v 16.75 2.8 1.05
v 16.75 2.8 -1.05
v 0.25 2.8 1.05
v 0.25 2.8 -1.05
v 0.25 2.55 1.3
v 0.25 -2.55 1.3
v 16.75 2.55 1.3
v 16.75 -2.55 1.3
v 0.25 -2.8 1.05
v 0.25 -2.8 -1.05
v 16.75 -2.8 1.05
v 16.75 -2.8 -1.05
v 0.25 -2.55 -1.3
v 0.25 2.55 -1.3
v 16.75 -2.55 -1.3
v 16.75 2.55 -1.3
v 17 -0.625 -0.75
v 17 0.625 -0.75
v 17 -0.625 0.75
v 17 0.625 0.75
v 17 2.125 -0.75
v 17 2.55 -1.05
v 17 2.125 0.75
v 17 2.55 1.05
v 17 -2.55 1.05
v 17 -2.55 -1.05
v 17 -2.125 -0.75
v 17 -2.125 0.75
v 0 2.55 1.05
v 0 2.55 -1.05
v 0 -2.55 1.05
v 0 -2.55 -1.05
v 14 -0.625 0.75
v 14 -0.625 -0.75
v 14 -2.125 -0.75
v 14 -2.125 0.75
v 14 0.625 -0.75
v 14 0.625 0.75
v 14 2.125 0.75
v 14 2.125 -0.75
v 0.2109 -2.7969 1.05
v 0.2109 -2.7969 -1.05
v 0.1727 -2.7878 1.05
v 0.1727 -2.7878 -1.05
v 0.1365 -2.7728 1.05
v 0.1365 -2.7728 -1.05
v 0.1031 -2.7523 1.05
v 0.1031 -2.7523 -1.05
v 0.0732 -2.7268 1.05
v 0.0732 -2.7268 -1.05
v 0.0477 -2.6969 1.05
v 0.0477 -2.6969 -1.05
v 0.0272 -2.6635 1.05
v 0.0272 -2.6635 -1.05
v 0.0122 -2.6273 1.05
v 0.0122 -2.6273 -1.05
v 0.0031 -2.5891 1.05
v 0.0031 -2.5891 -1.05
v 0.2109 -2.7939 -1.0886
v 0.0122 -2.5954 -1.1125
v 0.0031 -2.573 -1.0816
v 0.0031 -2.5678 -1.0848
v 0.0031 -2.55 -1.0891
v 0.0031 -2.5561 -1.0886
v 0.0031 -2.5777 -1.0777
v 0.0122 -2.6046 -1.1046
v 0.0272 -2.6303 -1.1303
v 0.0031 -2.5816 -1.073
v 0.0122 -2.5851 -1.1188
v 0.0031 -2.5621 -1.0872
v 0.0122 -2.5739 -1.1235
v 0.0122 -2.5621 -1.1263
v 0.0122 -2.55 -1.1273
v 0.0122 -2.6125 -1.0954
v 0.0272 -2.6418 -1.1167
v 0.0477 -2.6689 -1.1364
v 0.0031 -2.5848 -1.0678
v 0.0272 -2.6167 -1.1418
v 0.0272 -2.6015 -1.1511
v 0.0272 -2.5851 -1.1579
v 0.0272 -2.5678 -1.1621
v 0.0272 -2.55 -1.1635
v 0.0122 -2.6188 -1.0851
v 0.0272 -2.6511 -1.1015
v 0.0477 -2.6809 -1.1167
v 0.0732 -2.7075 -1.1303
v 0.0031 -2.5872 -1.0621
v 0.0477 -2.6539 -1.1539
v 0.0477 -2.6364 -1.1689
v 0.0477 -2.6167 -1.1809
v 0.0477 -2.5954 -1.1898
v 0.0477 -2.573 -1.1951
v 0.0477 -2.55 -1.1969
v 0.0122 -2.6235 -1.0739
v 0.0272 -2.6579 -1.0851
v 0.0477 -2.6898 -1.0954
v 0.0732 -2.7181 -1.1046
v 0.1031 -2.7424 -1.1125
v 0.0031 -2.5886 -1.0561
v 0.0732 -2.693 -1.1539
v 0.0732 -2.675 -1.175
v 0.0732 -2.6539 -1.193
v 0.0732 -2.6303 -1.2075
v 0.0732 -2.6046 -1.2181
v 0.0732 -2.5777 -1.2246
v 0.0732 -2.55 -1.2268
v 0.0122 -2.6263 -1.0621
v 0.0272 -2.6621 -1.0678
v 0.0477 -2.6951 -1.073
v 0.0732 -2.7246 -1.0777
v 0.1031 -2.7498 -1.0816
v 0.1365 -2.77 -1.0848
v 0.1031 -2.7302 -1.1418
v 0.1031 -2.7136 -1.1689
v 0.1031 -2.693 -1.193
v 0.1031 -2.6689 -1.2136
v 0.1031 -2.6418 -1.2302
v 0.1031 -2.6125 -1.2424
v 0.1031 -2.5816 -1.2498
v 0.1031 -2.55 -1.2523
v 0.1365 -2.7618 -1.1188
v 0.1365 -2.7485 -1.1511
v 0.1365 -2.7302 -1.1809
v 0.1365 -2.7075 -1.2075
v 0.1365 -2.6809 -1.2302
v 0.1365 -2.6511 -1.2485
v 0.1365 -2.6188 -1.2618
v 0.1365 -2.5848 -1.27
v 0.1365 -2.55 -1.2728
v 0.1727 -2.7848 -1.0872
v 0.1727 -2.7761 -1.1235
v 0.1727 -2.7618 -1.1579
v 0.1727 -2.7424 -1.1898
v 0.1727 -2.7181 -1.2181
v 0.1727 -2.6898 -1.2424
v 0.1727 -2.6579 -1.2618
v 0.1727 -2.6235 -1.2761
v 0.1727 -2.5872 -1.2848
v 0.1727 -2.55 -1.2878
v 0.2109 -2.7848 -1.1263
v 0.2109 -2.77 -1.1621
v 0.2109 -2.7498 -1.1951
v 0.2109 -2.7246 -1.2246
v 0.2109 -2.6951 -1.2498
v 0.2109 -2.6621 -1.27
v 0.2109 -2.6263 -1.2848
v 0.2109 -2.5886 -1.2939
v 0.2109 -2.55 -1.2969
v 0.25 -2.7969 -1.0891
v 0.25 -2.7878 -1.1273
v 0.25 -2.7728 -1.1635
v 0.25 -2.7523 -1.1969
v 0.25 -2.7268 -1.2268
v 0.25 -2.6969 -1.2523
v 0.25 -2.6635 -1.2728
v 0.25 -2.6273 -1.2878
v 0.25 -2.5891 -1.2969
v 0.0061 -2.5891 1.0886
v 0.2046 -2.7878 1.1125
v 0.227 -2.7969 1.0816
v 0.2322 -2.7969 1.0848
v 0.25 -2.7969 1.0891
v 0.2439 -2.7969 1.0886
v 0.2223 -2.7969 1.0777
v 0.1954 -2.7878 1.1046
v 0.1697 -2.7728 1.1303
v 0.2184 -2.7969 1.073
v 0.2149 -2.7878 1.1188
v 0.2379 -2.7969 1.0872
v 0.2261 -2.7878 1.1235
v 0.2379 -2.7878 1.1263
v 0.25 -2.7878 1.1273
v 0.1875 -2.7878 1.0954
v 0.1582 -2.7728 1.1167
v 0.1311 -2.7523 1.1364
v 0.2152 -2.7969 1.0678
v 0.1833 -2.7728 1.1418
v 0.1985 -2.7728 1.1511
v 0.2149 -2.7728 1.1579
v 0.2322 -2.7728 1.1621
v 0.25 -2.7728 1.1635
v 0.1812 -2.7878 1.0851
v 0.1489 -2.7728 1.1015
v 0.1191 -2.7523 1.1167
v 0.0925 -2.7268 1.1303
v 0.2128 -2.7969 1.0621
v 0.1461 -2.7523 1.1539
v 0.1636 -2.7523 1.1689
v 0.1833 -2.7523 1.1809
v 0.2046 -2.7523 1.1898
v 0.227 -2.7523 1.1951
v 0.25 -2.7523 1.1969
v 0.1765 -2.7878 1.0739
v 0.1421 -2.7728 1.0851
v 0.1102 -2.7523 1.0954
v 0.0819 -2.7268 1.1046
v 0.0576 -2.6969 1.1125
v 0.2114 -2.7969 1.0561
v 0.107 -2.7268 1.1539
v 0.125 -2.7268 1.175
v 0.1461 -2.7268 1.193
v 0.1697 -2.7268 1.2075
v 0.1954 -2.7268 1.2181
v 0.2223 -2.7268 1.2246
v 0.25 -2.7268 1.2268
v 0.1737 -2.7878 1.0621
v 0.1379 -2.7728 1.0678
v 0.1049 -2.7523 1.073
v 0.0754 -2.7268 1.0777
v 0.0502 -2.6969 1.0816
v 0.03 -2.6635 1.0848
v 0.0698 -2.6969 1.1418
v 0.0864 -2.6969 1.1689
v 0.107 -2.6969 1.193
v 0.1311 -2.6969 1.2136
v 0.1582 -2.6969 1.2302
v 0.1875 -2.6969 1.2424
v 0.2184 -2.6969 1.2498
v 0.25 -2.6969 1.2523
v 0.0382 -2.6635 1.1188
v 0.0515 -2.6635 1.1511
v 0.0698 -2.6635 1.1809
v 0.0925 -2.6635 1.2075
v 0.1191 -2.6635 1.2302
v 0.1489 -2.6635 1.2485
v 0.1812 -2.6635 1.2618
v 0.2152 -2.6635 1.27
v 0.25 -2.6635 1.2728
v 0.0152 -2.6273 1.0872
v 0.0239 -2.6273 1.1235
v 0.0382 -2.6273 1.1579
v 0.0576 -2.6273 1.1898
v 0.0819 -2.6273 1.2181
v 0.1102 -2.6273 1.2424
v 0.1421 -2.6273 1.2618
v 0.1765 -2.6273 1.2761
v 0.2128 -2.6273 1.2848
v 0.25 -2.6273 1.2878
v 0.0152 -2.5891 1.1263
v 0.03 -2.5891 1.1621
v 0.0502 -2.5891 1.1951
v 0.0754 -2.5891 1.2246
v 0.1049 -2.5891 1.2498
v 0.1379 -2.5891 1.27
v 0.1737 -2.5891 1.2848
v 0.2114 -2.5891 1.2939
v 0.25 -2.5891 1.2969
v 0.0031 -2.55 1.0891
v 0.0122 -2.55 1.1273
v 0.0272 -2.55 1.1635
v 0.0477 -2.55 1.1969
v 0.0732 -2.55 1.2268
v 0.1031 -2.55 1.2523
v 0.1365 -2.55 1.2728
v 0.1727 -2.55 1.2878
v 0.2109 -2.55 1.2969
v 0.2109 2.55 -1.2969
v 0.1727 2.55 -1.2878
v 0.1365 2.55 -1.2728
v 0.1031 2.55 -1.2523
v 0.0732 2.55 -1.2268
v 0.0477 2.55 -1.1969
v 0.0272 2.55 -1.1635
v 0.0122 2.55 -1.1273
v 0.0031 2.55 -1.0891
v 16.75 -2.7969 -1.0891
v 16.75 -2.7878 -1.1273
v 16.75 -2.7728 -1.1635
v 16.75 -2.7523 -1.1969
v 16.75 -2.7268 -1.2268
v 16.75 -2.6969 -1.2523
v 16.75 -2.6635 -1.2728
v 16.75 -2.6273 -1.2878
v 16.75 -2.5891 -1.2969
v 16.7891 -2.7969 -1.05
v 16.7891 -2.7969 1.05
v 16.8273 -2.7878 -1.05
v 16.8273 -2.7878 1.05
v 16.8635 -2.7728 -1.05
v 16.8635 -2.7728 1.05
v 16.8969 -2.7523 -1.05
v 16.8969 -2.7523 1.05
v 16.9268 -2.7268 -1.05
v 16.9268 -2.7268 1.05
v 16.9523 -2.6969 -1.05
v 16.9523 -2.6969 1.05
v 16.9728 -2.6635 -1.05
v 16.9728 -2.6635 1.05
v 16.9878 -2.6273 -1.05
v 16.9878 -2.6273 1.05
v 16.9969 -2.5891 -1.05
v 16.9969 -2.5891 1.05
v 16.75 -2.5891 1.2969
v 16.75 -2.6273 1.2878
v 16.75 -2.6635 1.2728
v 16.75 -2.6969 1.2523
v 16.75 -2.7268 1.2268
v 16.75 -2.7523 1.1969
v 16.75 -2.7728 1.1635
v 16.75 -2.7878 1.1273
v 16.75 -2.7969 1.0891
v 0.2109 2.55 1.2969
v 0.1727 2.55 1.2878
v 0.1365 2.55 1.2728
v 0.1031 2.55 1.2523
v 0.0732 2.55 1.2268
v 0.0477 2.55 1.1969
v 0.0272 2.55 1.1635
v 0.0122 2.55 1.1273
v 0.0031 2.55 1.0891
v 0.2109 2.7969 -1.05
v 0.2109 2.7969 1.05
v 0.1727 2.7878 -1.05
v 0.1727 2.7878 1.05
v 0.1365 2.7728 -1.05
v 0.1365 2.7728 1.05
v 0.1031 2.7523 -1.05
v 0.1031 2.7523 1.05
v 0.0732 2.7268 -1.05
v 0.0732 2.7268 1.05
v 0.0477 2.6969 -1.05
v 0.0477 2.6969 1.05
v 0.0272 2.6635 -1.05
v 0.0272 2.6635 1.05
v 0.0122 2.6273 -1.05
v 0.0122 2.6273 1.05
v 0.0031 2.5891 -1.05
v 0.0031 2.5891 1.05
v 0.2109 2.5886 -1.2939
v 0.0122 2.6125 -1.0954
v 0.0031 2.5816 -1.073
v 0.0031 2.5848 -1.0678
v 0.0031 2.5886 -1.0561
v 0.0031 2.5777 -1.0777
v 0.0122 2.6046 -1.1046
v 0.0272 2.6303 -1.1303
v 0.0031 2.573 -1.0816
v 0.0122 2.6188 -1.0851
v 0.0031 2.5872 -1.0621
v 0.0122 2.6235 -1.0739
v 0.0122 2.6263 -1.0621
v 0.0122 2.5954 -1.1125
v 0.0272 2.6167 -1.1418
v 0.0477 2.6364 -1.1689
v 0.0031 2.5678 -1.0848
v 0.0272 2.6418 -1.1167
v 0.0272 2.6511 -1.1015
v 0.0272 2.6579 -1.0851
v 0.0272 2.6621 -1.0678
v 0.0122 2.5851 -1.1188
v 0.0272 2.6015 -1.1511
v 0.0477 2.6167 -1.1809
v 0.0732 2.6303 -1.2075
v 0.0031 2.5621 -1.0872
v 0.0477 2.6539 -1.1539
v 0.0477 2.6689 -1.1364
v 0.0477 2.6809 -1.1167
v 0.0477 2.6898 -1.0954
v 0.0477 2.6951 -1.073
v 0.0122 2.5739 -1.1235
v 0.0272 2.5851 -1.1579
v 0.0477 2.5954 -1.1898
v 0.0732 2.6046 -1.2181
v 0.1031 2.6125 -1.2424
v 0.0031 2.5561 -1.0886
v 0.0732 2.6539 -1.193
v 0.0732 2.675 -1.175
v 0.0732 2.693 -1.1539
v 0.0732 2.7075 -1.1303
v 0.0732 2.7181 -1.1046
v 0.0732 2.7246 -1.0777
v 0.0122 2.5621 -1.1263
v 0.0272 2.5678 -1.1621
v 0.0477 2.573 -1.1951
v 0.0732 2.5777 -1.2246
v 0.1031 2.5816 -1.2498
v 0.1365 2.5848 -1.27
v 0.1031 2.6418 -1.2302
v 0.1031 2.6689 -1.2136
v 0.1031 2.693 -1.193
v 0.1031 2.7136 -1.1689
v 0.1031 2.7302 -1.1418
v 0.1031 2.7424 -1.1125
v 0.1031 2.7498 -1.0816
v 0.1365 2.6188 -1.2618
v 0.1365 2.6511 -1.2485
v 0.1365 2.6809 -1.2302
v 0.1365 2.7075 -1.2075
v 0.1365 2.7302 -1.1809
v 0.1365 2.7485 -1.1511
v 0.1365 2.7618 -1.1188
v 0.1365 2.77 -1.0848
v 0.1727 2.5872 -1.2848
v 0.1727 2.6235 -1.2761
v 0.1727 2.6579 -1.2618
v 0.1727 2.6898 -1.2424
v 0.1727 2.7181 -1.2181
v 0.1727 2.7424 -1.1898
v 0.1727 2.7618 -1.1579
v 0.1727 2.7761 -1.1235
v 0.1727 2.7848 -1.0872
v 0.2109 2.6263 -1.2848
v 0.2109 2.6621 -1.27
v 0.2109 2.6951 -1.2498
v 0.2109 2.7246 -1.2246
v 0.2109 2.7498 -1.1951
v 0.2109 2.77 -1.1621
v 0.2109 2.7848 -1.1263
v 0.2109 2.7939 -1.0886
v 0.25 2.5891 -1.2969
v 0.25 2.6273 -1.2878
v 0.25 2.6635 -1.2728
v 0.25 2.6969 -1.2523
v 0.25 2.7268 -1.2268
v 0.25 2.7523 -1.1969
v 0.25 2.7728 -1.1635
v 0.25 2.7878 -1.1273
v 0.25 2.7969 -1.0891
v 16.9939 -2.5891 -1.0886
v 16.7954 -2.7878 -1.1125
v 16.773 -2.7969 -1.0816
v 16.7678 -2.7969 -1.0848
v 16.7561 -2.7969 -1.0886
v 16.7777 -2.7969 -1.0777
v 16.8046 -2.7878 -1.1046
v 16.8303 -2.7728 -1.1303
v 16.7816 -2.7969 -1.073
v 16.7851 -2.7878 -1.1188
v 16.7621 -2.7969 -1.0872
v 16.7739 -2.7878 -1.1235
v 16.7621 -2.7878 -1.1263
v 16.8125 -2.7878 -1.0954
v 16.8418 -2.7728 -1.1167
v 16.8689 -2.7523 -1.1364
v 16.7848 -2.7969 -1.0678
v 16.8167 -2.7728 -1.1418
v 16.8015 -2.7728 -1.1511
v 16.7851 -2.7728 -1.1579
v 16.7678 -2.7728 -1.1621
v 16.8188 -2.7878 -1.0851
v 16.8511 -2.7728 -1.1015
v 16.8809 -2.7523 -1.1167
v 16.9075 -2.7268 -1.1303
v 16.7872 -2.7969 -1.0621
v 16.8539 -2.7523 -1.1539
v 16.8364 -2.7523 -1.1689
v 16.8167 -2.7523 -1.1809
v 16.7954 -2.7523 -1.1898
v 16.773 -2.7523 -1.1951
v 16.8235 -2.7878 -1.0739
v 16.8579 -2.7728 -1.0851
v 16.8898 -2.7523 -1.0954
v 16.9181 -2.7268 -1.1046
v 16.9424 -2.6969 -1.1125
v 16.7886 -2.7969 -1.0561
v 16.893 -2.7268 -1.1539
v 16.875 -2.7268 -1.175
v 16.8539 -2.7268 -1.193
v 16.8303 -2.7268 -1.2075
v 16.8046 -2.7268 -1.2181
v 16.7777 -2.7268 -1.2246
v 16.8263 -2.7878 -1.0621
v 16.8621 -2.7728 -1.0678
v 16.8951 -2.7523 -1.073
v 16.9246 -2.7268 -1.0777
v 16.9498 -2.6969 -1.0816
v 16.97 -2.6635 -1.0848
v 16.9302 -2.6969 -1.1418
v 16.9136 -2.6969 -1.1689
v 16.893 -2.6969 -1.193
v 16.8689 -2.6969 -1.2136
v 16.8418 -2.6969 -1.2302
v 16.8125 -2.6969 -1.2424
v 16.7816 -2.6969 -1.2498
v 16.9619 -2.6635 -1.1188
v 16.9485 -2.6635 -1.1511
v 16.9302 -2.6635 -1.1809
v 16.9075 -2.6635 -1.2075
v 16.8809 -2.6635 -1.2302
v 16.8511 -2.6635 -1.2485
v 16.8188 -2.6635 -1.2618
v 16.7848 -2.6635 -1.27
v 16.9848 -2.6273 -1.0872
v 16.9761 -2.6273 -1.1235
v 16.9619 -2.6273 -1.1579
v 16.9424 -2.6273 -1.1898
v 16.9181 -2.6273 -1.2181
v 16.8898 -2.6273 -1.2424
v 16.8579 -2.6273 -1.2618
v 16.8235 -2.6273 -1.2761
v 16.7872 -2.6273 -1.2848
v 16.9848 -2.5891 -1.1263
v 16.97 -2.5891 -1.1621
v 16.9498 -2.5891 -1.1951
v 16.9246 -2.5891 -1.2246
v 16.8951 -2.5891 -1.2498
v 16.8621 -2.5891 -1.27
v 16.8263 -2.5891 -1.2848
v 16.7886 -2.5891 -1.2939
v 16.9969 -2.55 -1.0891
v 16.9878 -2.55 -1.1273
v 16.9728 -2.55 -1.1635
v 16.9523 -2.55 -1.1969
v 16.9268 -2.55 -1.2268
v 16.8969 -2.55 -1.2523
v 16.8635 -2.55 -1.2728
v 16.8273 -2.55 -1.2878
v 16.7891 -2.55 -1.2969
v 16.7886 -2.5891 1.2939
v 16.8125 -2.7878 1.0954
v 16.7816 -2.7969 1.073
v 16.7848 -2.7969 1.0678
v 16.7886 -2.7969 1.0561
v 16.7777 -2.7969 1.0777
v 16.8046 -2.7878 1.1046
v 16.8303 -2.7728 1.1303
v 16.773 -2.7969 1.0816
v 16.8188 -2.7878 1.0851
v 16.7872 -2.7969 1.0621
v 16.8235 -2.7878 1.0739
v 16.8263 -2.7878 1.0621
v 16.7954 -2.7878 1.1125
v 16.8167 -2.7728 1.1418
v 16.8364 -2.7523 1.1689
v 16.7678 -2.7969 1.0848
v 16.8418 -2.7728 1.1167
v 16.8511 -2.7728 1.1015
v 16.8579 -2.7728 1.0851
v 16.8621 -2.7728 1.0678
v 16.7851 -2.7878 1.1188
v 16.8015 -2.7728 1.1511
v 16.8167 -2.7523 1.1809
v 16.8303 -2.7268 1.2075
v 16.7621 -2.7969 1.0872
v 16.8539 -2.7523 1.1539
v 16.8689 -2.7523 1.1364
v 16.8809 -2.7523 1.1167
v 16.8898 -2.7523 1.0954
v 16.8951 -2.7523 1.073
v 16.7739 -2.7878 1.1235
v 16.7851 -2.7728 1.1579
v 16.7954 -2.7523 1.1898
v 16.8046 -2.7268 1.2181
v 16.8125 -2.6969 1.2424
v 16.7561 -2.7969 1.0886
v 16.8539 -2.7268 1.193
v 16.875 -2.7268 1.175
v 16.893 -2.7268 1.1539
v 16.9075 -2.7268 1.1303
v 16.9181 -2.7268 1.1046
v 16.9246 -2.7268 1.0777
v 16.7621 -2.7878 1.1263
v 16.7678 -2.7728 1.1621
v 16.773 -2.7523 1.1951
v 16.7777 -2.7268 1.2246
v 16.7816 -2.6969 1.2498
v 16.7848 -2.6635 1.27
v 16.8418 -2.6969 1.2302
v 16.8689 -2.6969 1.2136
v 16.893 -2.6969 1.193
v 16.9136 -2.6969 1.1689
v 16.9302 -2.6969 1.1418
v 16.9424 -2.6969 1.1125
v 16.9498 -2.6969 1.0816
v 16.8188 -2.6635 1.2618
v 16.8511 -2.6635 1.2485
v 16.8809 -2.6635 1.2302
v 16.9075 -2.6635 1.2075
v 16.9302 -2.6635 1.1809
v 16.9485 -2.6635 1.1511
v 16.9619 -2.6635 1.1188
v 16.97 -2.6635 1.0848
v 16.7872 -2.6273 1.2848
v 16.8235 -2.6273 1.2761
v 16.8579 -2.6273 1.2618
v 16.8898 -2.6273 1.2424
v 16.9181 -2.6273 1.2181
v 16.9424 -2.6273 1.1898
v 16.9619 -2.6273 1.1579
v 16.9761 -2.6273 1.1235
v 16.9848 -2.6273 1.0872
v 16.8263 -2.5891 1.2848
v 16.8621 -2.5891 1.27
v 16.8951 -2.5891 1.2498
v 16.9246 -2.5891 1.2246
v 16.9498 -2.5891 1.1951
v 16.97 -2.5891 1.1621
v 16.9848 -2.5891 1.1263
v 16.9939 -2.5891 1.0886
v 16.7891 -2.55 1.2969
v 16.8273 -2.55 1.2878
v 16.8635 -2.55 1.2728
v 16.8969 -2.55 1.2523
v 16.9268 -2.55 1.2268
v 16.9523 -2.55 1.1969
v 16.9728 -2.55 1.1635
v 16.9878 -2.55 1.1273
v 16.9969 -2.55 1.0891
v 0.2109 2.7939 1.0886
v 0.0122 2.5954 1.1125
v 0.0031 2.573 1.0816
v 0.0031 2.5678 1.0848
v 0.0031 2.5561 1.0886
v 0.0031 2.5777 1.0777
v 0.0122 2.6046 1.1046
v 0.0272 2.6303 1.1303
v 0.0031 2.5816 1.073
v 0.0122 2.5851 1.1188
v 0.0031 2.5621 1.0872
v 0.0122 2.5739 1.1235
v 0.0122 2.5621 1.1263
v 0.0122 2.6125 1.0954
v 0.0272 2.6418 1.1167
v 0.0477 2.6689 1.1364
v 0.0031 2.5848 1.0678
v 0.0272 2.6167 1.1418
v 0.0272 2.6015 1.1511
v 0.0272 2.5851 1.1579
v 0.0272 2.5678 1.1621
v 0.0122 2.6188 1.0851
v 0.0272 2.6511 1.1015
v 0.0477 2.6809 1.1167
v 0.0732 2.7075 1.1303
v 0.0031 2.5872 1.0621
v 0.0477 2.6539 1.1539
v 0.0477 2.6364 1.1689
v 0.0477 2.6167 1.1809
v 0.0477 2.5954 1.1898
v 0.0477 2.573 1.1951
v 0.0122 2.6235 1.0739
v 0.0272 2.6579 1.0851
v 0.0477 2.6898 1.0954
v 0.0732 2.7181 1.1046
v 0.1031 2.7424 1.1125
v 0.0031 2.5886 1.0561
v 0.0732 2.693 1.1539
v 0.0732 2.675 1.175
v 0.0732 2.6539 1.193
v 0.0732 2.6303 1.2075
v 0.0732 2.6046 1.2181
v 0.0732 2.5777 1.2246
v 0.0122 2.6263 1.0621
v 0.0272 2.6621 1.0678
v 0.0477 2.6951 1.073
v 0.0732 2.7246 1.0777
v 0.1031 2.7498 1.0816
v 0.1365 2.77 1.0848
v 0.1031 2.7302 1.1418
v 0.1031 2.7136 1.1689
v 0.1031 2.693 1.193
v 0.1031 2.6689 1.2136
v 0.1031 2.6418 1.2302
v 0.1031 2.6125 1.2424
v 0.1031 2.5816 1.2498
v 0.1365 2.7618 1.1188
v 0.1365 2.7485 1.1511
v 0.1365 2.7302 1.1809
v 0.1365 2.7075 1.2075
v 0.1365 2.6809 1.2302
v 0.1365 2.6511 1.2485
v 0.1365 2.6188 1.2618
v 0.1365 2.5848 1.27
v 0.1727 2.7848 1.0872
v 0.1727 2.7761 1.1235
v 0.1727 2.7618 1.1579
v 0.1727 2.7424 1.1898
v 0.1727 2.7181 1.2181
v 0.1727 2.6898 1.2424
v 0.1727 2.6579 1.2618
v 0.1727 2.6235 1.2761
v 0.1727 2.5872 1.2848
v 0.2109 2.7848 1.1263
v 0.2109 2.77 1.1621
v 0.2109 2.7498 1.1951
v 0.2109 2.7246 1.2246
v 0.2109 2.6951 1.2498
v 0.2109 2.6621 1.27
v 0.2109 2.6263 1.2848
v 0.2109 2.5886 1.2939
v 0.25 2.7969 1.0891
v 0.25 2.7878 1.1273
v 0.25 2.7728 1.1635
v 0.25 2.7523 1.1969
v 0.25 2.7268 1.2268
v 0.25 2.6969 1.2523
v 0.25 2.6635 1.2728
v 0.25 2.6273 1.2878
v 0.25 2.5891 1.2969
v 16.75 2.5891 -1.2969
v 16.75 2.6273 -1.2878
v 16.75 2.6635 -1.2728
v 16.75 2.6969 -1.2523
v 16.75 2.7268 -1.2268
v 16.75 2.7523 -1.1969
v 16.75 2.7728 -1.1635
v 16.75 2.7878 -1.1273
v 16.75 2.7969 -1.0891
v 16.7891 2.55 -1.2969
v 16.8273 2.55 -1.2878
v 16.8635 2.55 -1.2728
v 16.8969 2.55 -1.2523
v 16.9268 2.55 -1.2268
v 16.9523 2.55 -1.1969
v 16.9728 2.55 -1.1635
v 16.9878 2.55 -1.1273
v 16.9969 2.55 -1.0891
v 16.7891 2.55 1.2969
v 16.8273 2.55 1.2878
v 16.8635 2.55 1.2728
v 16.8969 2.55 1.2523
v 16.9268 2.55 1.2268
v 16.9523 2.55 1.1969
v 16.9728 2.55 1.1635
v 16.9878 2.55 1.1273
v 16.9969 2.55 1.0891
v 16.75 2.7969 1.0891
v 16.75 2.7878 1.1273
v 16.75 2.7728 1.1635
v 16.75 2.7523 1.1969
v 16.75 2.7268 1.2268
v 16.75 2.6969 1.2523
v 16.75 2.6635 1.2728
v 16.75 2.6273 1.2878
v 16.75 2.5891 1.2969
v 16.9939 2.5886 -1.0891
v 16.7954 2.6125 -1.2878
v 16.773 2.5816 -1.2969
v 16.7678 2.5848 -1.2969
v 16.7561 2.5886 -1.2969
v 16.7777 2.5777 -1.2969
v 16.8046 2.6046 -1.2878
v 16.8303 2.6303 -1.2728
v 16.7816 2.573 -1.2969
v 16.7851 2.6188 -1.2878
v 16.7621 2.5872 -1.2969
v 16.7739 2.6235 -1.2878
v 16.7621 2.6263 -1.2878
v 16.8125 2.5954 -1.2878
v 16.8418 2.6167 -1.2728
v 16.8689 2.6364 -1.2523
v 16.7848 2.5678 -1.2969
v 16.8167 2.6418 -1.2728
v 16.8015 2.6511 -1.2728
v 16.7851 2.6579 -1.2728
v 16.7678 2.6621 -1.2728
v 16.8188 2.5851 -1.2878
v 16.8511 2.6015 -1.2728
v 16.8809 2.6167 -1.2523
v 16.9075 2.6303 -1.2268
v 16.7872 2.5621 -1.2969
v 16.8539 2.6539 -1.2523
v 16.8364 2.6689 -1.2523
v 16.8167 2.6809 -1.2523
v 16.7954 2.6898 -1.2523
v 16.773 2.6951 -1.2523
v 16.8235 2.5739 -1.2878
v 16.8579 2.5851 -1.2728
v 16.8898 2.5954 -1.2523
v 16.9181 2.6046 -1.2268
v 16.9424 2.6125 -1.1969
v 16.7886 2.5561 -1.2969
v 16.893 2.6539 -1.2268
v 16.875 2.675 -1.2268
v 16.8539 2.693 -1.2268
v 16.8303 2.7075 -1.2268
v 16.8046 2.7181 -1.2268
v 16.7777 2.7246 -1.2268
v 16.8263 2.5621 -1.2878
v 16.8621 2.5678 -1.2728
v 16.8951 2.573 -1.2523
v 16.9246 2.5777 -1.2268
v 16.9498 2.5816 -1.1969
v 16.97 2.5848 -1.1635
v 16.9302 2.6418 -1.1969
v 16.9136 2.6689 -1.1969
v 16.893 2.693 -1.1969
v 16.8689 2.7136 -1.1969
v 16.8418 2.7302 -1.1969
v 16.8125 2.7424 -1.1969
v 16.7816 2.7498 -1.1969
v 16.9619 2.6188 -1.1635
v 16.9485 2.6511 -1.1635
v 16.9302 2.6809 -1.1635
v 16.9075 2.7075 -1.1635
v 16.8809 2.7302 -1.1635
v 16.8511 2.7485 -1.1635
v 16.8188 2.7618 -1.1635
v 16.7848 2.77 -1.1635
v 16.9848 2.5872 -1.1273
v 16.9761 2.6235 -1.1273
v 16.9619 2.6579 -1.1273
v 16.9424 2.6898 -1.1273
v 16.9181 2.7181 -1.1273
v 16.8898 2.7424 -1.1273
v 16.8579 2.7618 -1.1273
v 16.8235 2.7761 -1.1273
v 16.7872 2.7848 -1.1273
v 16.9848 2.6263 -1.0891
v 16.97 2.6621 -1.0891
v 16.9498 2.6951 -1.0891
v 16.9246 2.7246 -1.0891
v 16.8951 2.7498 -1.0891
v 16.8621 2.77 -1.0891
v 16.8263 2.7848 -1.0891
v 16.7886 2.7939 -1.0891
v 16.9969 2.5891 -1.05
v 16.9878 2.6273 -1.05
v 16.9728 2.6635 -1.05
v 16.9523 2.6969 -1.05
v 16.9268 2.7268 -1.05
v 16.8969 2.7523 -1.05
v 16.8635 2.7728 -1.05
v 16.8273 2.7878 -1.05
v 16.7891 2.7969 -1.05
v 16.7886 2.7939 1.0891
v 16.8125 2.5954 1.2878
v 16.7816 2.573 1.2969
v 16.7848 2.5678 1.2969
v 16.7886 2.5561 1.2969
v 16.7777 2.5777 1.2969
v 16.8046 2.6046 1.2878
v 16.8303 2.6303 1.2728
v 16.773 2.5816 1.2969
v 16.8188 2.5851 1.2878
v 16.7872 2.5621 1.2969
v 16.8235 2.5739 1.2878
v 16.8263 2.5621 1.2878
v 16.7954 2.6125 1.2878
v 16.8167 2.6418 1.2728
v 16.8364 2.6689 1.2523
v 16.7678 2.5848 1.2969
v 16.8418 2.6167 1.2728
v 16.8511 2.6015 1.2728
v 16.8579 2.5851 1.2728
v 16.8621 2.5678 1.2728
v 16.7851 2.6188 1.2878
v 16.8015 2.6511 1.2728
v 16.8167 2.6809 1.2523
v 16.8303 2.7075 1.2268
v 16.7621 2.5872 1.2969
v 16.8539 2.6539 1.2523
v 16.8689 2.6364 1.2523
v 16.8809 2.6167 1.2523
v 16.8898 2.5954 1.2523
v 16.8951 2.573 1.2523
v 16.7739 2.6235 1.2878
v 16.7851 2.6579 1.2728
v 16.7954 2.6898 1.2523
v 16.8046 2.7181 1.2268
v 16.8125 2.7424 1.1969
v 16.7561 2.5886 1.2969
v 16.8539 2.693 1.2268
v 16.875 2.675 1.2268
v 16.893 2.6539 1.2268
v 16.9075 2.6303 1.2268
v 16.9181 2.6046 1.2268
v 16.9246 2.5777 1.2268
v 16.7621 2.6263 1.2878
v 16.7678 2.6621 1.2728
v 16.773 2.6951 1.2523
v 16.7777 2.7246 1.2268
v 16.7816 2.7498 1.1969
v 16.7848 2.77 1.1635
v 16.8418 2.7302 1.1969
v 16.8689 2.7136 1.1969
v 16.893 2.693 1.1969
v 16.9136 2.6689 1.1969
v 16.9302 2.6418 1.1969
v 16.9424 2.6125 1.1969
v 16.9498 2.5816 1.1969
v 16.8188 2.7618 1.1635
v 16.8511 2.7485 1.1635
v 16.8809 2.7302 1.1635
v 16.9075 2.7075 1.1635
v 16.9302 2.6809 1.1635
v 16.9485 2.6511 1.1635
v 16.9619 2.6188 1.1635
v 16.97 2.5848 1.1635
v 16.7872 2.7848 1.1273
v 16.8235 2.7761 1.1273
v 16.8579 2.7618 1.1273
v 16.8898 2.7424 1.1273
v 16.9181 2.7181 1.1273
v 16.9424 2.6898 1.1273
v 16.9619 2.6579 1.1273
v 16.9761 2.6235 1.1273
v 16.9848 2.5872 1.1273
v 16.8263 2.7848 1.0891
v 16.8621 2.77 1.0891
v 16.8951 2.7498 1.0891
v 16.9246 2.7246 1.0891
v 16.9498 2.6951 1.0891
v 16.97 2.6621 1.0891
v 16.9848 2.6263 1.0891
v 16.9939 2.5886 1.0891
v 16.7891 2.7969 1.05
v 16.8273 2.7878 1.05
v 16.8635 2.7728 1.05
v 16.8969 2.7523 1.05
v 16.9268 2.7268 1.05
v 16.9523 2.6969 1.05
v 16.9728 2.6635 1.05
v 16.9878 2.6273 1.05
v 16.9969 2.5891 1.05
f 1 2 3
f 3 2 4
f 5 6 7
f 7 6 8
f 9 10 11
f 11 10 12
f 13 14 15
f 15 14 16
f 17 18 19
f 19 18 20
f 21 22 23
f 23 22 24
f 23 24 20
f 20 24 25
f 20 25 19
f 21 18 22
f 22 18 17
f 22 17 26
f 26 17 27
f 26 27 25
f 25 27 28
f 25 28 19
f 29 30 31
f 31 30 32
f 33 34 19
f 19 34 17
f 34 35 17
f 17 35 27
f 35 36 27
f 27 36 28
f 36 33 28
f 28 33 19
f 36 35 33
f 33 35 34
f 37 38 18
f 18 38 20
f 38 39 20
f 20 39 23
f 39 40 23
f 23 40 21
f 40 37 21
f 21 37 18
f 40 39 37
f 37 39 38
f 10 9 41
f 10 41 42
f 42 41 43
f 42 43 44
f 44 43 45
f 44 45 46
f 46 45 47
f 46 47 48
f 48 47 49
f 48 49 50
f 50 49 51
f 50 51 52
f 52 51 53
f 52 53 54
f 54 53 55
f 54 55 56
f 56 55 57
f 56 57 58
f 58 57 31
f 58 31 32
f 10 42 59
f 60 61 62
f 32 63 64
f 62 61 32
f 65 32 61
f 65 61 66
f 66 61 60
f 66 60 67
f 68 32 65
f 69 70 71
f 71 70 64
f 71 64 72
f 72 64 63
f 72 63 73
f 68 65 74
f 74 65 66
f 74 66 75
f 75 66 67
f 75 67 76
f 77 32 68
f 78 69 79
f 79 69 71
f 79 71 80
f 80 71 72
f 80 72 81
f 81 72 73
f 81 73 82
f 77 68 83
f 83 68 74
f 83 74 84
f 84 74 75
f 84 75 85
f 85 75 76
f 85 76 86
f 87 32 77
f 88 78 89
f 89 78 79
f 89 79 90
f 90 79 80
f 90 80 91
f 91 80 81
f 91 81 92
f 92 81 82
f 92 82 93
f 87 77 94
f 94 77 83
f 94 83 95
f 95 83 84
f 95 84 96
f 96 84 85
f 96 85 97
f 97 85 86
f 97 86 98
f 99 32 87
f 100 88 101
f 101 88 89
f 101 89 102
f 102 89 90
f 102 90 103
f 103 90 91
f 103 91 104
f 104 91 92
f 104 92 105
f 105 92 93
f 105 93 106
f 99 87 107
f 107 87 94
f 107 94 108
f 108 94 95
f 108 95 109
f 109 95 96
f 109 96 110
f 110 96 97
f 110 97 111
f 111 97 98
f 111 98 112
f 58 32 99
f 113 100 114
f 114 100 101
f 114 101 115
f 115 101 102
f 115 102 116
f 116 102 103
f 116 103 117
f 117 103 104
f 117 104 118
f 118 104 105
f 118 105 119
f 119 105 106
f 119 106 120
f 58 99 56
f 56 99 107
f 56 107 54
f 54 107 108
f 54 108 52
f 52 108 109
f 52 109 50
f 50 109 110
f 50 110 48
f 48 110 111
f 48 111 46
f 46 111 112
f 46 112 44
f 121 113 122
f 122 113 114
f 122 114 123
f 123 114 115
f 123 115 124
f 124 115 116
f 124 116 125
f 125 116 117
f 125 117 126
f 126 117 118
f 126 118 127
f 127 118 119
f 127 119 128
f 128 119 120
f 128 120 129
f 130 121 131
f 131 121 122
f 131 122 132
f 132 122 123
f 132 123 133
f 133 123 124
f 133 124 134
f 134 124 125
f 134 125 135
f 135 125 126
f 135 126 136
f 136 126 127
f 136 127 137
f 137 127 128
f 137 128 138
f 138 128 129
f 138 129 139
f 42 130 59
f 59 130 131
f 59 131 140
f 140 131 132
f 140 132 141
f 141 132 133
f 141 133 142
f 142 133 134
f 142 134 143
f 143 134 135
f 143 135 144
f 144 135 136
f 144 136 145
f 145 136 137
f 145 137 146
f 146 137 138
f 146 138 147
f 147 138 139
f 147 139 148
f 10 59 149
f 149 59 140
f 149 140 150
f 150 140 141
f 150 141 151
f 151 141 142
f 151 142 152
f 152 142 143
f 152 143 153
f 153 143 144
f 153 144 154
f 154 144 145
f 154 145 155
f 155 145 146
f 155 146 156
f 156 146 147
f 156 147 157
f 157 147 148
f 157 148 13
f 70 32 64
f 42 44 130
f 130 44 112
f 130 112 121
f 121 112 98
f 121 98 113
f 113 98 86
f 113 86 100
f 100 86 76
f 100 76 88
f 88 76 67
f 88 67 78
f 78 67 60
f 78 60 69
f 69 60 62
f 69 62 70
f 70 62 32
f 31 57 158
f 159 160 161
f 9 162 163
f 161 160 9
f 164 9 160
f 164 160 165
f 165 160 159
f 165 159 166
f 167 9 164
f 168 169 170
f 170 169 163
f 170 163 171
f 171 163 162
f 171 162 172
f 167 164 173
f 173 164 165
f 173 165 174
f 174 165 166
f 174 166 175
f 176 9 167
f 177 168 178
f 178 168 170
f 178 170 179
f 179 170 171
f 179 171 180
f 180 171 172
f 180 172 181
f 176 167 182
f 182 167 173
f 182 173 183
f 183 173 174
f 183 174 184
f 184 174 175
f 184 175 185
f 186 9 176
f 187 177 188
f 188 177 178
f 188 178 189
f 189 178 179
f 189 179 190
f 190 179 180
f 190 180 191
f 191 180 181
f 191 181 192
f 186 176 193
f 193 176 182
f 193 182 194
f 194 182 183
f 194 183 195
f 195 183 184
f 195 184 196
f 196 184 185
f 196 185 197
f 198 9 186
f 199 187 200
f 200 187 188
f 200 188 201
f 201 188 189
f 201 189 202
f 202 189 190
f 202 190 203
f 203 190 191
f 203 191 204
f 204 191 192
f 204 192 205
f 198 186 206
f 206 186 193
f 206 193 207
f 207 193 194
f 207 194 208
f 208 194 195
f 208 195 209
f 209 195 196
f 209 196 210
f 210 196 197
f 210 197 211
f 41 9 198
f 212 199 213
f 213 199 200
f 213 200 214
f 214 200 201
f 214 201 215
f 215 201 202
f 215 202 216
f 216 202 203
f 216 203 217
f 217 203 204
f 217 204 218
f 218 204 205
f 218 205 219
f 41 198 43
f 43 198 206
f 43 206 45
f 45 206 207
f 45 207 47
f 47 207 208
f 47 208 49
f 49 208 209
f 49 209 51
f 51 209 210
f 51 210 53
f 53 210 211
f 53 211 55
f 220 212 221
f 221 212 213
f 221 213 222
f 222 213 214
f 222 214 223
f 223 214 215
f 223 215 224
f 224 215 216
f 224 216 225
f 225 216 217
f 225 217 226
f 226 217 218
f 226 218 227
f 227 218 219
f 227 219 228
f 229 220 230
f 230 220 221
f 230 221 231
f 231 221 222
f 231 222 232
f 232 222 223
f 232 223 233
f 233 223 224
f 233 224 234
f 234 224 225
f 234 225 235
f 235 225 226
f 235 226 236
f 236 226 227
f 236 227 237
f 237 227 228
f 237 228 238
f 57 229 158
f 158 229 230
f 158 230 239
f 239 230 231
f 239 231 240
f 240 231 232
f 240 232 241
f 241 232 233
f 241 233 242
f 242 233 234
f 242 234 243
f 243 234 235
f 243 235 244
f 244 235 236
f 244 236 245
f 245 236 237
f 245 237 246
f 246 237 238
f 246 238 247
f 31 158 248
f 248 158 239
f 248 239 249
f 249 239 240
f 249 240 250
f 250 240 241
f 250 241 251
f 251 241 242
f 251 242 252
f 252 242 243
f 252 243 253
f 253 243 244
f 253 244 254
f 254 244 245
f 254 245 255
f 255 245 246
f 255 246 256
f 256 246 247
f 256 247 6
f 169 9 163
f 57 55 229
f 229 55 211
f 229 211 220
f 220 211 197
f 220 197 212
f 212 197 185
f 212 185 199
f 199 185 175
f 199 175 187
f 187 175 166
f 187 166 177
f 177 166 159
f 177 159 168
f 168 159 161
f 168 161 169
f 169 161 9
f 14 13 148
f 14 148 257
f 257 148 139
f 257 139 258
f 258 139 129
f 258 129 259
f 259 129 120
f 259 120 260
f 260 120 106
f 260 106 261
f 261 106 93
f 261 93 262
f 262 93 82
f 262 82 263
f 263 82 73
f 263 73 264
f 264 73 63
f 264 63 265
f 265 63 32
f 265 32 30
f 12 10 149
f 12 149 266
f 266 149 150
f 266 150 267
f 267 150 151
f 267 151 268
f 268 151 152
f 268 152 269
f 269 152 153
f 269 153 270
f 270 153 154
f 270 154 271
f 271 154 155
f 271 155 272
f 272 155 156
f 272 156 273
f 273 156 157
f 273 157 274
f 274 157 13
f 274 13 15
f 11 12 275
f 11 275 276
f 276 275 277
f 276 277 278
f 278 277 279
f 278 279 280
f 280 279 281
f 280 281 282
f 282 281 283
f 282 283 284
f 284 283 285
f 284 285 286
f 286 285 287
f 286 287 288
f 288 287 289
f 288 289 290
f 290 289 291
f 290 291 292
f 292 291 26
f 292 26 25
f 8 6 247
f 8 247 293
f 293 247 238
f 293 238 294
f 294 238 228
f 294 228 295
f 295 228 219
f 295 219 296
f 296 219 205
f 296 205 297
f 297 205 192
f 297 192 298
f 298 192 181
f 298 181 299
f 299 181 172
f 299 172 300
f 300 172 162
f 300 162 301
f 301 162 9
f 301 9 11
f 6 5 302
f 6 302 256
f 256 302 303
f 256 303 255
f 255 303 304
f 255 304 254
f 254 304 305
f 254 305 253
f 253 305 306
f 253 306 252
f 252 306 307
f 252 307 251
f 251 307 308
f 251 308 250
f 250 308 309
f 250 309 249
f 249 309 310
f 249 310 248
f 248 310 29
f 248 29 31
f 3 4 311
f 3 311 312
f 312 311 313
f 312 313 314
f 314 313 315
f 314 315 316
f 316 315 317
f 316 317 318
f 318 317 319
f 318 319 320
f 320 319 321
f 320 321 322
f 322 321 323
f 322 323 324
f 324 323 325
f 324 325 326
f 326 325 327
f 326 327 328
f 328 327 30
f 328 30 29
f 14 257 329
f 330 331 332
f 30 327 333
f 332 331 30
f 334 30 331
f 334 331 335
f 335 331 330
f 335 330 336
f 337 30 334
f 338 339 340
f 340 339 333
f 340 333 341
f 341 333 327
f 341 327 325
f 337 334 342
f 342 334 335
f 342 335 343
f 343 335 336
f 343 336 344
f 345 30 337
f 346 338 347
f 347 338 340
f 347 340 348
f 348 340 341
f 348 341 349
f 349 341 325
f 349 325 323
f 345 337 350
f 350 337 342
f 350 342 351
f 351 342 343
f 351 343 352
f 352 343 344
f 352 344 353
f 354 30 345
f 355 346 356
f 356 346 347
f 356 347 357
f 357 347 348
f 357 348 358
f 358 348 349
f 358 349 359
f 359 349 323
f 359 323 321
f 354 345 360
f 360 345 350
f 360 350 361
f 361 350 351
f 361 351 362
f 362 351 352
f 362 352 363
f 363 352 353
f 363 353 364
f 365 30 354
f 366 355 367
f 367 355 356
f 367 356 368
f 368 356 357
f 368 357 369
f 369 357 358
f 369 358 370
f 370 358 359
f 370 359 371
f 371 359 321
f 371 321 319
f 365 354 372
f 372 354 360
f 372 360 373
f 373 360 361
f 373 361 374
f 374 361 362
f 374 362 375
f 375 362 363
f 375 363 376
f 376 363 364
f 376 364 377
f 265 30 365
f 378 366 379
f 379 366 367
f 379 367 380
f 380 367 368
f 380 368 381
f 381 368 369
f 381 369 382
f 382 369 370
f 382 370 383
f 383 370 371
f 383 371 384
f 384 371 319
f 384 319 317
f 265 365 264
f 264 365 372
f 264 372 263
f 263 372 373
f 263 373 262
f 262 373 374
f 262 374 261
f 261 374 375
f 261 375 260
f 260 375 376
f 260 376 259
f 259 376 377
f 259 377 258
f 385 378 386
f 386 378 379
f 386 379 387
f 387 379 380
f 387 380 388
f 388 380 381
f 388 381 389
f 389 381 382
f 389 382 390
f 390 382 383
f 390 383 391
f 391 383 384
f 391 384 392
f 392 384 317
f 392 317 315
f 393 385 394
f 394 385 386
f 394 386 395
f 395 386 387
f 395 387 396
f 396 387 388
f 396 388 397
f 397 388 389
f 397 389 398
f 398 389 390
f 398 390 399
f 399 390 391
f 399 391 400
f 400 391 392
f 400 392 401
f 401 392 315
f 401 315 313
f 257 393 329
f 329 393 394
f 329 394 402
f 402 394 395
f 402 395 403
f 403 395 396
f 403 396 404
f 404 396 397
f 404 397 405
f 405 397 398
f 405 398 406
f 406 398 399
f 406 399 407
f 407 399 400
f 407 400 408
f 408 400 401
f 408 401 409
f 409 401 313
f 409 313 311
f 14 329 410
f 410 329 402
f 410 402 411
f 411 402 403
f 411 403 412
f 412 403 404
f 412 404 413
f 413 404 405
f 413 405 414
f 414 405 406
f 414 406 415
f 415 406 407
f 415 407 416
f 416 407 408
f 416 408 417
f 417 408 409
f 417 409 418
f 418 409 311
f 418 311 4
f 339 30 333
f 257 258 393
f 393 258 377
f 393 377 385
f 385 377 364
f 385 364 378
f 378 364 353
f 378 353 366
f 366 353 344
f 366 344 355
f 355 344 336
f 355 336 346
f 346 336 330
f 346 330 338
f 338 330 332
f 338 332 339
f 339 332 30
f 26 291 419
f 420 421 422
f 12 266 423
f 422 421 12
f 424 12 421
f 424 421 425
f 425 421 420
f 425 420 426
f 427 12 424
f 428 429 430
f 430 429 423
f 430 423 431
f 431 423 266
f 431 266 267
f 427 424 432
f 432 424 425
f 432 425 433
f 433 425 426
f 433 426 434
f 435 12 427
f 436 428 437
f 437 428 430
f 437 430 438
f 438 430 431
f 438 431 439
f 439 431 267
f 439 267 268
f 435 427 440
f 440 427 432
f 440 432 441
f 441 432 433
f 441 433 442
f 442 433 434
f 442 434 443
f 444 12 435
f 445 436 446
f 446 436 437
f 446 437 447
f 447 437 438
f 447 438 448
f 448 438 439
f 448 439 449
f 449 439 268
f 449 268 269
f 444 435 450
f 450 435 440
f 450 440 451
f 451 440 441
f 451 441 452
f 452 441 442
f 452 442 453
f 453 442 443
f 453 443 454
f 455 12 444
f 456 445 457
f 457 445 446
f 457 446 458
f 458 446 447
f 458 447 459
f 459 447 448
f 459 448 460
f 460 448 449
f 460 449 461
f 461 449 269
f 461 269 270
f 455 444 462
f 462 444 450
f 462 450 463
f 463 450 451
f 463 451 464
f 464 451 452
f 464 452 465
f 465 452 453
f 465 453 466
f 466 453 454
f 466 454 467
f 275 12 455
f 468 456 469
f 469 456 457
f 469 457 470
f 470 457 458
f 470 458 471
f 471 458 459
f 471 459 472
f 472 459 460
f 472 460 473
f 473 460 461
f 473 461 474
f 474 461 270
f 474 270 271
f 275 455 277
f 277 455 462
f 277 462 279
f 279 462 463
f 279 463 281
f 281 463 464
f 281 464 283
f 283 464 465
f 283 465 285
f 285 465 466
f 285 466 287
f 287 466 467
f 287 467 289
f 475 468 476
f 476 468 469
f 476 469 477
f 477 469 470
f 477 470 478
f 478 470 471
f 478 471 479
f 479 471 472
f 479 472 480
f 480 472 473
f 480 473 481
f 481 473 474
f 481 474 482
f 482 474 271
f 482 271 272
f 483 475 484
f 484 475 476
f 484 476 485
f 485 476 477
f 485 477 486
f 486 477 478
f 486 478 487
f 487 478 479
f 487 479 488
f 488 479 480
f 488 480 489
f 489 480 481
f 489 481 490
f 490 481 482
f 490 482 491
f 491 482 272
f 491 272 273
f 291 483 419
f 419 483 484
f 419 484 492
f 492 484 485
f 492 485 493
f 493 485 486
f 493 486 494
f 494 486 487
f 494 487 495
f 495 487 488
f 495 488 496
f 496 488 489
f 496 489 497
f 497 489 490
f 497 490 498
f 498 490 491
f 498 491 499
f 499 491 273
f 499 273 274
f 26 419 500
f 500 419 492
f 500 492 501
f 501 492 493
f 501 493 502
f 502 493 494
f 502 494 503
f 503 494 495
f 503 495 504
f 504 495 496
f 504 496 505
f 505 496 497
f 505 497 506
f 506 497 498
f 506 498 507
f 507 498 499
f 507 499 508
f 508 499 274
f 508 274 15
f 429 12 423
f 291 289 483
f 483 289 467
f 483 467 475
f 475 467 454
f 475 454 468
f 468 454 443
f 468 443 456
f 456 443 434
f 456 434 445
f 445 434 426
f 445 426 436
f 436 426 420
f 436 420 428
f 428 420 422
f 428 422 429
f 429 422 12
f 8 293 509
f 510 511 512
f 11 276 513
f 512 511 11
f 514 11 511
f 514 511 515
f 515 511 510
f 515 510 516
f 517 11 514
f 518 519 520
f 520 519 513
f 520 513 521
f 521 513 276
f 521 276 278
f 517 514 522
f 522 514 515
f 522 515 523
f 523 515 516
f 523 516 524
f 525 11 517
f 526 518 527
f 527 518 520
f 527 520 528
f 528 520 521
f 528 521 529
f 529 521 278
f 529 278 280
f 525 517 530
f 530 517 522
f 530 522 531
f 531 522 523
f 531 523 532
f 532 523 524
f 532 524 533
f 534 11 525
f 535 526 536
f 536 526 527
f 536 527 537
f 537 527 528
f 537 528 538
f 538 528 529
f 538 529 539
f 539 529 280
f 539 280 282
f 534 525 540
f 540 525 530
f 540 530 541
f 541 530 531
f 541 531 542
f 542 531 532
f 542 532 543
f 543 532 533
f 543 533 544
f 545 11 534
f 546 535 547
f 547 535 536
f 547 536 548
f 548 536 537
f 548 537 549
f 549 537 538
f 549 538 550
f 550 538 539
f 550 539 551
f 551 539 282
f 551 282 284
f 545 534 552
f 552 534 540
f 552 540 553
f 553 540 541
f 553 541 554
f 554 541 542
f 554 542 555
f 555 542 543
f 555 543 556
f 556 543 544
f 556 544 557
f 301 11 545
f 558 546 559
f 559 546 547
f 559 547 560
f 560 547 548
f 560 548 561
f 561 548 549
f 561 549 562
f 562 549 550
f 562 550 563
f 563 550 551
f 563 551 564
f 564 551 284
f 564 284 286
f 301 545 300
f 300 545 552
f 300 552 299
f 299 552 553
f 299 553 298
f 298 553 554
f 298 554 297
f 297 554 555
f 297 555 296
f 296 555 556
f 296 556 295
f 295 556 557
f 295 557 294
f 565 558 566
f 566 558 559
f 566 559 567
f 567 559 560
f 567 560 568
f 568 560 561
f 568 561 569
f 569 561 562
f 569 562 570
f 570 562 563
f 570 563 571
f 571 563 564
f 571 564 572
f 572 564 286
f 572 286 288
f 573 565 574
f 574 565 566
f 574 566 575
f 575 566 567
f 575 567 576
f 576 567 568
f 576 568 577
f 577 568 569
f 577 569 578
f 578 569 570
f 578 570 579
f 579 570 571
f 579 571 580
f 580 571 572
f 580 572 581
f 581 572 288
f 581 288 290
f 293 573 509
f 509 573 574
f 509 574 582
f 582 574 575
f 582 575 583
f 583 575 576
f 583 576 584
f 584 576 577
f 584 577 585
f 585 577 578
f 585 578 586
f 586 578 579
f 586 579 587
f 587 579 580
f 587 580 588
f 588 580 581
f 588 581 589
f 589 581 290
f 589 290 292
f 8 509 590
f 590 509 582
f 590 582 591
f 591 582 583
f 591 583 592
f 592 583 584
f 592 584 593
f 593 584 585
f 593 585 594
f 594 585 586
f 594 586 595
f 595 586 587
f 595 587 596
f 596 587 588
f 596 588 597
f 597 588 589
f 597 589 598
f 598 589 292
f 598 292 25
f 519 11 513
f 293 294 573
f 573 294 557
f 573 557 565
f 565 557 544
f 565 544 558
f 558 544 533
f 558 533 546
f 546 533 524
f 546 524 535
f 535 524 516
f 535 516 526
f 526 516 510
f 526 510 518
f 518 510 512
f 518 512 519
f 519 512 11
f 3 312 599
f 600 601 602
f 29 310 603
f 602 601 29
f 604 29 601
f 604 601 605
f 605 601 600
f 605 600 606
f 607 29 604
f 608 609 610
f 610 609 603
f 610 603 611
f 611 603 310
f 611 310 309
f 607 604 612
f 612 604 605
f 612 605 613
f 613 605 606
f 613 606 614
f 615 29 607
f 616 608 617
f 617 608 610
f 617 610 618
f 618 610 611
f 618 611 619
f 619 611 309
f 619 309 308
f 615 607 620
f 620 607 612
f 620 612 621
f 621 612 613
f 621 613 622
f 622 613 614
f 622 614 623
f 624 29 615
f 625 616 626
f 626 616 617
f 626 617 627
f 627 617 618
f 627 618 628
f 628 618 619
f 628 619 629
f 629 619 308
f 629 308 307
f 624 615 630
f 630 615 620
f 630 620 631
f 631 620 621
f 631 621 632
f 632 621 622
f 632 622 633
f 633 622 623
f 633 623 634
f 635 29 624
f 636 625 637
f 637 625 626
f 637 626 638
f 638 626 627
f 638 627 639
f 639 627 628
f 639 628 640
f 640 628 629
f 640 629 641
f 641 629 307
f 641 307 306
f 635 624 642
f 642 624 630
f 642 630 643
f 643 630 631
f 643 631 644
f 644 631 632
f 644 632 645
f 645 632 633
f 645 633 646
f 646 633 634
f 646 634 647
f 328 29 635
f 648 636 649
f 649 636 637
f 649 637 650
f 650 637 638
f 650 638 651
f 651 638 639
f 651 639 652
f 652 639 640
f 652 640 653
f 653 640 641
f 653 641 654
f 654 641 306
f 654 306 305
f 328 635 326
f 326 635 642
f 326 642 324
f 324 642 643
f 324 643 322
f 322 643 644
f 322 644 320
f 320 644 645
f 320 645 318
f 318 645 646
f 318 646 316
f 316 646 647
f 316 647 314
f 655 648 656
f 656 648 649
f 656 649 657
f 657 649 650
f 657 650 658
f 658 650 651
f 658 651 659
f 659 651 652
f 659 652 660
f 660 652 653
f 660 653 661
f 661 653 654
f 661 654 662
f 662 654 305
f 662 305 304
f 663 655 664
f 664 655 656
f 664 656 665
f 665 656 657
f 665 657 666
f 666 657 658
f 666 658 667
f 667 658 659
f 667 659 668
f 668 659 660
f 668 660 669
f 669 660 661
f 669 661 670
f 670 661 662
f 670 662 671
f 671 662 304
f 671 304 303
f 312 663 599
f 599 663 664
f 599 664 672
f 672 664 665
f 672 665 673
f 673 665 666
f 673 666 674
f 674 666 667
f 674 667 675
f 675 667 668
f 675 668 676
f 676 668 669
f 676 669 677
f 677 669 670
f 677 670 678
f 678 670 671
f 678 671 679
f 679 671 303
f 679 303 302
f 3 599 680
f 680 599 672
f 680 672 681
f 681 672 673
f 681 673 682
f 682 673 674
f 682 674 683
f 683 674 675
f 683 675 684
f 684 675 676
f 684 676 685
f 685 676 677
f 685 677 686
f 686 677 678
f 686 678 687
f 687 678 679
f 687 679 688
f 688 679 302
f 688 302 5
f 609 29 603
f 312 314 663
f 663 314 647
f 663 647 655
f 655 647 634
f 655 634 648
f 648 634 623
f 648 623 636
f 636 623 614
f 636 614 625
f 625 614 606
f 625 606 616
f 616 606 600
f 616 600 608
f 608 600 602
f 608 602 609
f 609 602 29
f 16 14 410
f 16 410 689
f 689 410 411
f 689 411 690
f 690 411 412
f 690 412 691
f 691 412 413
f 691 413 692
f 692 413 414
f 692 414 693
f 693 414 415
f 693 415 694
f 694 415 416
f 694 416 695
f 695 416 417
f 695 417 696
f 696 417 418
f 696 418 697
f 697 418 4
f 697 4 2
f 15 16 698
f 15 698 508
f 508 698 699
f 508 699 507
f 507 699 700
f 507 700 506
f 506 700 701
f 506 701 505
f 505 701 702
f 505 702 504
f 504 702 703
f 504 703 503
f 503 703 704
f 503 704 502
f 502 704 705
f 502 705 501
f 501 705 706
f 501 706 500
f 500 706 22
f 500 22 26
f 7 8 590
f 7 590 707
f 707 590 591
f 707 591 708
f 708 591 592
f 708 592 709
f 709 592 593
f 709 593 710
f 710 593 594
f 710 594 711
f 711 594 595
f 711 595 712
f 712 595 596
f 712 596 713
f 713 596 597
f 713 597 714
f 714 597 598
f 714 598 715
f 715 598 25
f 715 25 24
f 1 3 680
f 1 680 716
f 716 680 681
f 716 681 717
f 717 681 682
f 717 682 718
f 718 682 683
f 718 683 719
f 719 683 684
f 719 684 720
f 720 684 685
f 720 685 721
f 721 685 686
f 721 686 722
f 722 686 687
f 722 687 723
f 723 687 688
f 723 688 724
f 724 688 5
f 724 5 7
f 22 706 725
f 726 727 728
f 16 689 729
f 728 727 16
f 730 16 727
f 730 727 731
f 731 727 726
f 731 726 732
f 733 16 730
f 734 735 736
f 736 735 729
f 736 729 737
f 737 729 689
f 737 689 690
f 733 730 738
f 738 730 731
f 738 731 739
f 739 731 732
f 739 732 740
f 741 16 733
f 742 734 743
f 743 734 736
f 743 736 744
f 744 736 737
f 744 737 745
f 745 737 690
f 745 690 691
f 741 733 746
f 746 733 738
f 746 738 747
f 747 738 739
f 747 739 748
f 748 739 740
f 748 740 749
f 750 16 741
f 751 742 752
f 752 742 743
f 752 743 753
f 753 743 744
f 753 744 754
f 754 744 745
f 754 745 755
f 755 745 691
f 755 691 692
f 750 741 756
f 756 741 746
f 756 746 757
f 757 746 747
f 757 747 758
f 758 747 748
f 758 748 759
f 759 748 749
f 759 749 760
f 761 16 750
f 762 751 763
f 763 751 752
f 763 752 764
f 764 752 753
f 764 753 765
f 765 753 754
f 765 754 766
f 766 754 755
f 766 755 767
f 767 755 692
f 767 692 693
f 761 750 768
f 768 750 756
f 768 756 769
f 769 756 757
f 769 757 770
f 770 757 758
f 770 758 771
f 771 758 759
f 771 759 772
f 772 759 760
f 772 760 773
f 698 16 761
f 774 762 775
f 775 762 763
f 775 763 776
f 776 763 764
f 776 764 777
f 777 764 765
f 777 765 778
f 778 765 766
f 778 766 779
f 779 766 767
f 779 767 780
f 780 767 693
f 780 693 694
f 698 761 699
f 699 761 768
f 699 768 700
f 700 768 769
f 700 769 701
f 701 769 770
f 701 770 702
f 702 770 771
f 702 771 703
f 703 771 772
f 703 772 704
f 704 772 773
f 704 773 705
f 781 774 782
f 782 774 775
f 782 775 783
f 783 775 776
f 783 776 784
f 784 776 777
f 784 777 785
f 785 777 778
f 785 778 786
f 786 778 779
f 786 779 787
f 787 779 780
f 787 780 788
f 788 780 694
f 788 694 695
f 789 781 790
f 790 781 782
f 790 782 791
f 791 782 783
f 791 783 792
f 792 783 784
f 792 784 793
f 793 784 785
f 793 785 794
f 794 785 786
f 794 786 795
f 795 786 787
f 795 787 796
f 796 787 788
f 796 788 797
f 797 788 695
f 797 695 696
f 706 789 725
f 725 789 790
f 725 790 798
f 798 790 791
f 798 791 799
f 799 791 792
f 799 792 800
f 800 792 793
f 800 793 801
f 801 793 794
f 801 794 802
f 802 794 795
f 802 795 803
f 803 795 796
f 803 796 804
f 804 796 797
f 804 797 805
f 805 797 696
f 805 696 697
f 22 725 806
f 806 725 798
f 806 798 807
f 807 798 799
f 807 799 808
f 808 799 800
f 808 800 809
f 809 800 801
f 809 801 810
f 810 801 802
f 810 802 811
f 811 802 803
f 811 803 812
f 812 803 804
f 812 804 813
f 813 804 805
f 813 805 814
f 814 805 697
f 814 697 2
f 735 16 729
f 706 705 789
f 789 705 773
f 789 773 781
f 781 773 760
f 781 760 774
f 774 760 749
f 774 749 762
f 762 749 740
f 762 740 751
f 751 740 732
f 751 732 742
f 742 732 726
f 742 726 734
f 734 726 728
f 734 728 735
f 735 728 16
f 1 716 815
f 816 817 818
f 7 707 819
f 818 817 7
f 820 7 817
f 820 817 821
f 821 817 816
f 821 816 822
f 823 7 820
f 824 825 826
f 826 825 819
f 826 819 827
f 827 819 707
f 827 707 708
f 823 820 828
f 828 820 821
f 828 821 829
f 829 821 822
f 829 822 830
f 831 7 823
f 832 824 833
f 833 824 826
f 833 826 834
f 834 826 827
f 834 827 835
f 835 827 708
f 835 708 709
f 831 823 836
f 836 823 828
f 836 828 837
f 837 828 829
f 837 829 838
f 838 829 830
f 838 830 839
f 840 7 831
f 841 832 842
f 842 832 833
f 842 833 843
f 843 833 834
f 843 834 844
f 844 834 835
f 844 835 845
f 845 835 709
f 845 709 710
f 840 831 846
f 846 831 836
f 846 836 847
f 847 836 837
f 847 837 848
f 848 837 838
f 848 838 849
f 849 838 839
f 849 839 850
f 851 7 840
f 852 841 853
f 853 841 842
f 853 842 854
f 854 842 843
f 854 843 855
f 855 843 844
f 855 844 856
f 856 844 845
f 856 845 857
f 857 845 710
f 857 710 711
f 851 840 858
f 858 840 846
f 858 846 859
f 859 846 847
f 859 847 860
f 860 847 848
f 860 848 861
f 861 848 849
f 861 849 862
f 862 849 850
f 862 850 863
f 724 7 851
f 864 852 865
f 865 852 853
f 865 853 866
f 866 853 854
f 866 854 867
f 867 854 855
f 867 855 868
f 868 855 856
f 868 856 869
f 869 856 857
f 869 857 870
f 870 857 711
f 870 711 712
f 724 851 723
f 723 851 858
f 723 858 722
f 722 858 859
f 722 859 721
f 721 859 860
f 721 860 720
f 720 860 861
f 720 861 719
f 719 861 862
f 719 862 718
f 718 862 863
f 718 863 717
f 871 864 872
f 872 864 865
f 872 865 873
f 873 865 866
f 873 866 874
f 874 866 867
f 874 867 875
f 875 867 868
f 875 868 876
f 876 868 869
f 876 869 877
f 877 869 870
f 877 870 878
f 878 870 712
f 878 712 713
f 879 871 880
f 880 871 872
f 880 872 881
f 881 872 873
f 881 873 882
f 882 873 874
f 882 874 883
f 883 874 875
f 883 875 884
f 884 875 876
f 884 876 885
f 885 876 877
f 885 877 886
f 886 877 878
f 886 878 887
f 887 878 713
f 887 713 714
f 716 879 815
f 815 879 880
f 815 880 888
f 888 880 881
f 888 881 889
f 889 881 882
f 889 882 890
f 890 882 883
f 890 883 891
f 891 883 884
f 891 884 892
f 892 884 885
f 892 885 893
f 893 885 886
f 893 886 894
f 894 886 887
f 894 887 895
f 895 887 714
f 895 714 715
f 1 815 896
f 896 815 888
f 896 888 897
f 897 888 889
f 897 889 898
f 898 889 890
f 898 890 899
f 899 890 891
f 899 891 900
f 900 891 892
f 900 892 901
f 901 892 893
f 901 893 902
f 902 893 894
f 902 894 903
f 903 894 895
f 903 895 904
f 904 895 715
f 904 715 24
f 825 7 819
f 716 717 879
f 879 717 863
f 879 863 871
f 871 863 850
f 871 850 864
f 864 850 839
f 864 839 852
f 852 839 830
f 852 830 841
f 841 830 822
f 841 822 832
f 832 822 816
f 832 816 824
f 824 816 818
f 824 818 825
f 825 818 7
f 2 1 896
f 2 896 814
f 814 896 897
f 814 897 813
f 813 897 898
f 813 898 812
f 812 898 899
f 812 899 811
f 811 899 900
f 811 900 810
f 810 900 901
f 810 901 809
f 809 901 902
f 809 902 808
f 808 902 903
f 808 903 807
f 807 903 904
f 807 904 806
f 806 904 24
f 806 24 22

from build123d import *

# Parameters (mm, degrees)
CROQUIS1_W              = 5.6
CROQUIS1_H              = 2.6
SALIENTE_EXTRUIR1_DEPTH = 17
CROQUIS2_W              = 1.5
CROQUIS2_H              = 1.5
CORTAR_EXTRUIR1_DEPTH   = 3
REDONDEO1_R             = 0.25


with BuildPart() as part:
    # Croquis1 → Saliente-Extruir1 (new body)
    with BuildSketch(Plane.YZ):
        Rectangle(CROQUIS1_W, CROQUIS1_H)
    extrude(amount=SALIENTE_EXTRUIR1_DEPTH)

    # Croquis2 → Cortar-Extruir1 (cut)
    with BuildSketch(Plane.YZ.offset(17)):
        with Locations((1.375, 0)):
            Rectangle(CROQUIS2_W, CROQUIS2_H)
        with Locations((-1.375, 0)):
            Rectangle(CROQUIS2_W, CROQUIS2_H)
    extrude(amount=-CORTAR_EXTRUIR1_DEPTH, mode=Mode.SUBTRACT)

    # Redondeo1
    redondeo1_edges = [part.edges().sort_by_distance(p)[0] for p in [
        (17, -2.8, 0),
        (17, 0, -1.3),
        (17, 2.8, 0),
        (0, 0, -1.3),
        (0, -2.8, 0),
        (0, 0, 1.3),
        (0, 2.8, 0),
        (8.5, 2.8, -1.3),
        (8.5, -2.8, -1.3),
        (8.5, -2.8, 1.3),
        (8.5, 2.8, 1.3),
        (17, 0, 1.3),
    ]]
    fillet(redondeo1_edges, radius=REDONDEO1_R)


solid = part.part
